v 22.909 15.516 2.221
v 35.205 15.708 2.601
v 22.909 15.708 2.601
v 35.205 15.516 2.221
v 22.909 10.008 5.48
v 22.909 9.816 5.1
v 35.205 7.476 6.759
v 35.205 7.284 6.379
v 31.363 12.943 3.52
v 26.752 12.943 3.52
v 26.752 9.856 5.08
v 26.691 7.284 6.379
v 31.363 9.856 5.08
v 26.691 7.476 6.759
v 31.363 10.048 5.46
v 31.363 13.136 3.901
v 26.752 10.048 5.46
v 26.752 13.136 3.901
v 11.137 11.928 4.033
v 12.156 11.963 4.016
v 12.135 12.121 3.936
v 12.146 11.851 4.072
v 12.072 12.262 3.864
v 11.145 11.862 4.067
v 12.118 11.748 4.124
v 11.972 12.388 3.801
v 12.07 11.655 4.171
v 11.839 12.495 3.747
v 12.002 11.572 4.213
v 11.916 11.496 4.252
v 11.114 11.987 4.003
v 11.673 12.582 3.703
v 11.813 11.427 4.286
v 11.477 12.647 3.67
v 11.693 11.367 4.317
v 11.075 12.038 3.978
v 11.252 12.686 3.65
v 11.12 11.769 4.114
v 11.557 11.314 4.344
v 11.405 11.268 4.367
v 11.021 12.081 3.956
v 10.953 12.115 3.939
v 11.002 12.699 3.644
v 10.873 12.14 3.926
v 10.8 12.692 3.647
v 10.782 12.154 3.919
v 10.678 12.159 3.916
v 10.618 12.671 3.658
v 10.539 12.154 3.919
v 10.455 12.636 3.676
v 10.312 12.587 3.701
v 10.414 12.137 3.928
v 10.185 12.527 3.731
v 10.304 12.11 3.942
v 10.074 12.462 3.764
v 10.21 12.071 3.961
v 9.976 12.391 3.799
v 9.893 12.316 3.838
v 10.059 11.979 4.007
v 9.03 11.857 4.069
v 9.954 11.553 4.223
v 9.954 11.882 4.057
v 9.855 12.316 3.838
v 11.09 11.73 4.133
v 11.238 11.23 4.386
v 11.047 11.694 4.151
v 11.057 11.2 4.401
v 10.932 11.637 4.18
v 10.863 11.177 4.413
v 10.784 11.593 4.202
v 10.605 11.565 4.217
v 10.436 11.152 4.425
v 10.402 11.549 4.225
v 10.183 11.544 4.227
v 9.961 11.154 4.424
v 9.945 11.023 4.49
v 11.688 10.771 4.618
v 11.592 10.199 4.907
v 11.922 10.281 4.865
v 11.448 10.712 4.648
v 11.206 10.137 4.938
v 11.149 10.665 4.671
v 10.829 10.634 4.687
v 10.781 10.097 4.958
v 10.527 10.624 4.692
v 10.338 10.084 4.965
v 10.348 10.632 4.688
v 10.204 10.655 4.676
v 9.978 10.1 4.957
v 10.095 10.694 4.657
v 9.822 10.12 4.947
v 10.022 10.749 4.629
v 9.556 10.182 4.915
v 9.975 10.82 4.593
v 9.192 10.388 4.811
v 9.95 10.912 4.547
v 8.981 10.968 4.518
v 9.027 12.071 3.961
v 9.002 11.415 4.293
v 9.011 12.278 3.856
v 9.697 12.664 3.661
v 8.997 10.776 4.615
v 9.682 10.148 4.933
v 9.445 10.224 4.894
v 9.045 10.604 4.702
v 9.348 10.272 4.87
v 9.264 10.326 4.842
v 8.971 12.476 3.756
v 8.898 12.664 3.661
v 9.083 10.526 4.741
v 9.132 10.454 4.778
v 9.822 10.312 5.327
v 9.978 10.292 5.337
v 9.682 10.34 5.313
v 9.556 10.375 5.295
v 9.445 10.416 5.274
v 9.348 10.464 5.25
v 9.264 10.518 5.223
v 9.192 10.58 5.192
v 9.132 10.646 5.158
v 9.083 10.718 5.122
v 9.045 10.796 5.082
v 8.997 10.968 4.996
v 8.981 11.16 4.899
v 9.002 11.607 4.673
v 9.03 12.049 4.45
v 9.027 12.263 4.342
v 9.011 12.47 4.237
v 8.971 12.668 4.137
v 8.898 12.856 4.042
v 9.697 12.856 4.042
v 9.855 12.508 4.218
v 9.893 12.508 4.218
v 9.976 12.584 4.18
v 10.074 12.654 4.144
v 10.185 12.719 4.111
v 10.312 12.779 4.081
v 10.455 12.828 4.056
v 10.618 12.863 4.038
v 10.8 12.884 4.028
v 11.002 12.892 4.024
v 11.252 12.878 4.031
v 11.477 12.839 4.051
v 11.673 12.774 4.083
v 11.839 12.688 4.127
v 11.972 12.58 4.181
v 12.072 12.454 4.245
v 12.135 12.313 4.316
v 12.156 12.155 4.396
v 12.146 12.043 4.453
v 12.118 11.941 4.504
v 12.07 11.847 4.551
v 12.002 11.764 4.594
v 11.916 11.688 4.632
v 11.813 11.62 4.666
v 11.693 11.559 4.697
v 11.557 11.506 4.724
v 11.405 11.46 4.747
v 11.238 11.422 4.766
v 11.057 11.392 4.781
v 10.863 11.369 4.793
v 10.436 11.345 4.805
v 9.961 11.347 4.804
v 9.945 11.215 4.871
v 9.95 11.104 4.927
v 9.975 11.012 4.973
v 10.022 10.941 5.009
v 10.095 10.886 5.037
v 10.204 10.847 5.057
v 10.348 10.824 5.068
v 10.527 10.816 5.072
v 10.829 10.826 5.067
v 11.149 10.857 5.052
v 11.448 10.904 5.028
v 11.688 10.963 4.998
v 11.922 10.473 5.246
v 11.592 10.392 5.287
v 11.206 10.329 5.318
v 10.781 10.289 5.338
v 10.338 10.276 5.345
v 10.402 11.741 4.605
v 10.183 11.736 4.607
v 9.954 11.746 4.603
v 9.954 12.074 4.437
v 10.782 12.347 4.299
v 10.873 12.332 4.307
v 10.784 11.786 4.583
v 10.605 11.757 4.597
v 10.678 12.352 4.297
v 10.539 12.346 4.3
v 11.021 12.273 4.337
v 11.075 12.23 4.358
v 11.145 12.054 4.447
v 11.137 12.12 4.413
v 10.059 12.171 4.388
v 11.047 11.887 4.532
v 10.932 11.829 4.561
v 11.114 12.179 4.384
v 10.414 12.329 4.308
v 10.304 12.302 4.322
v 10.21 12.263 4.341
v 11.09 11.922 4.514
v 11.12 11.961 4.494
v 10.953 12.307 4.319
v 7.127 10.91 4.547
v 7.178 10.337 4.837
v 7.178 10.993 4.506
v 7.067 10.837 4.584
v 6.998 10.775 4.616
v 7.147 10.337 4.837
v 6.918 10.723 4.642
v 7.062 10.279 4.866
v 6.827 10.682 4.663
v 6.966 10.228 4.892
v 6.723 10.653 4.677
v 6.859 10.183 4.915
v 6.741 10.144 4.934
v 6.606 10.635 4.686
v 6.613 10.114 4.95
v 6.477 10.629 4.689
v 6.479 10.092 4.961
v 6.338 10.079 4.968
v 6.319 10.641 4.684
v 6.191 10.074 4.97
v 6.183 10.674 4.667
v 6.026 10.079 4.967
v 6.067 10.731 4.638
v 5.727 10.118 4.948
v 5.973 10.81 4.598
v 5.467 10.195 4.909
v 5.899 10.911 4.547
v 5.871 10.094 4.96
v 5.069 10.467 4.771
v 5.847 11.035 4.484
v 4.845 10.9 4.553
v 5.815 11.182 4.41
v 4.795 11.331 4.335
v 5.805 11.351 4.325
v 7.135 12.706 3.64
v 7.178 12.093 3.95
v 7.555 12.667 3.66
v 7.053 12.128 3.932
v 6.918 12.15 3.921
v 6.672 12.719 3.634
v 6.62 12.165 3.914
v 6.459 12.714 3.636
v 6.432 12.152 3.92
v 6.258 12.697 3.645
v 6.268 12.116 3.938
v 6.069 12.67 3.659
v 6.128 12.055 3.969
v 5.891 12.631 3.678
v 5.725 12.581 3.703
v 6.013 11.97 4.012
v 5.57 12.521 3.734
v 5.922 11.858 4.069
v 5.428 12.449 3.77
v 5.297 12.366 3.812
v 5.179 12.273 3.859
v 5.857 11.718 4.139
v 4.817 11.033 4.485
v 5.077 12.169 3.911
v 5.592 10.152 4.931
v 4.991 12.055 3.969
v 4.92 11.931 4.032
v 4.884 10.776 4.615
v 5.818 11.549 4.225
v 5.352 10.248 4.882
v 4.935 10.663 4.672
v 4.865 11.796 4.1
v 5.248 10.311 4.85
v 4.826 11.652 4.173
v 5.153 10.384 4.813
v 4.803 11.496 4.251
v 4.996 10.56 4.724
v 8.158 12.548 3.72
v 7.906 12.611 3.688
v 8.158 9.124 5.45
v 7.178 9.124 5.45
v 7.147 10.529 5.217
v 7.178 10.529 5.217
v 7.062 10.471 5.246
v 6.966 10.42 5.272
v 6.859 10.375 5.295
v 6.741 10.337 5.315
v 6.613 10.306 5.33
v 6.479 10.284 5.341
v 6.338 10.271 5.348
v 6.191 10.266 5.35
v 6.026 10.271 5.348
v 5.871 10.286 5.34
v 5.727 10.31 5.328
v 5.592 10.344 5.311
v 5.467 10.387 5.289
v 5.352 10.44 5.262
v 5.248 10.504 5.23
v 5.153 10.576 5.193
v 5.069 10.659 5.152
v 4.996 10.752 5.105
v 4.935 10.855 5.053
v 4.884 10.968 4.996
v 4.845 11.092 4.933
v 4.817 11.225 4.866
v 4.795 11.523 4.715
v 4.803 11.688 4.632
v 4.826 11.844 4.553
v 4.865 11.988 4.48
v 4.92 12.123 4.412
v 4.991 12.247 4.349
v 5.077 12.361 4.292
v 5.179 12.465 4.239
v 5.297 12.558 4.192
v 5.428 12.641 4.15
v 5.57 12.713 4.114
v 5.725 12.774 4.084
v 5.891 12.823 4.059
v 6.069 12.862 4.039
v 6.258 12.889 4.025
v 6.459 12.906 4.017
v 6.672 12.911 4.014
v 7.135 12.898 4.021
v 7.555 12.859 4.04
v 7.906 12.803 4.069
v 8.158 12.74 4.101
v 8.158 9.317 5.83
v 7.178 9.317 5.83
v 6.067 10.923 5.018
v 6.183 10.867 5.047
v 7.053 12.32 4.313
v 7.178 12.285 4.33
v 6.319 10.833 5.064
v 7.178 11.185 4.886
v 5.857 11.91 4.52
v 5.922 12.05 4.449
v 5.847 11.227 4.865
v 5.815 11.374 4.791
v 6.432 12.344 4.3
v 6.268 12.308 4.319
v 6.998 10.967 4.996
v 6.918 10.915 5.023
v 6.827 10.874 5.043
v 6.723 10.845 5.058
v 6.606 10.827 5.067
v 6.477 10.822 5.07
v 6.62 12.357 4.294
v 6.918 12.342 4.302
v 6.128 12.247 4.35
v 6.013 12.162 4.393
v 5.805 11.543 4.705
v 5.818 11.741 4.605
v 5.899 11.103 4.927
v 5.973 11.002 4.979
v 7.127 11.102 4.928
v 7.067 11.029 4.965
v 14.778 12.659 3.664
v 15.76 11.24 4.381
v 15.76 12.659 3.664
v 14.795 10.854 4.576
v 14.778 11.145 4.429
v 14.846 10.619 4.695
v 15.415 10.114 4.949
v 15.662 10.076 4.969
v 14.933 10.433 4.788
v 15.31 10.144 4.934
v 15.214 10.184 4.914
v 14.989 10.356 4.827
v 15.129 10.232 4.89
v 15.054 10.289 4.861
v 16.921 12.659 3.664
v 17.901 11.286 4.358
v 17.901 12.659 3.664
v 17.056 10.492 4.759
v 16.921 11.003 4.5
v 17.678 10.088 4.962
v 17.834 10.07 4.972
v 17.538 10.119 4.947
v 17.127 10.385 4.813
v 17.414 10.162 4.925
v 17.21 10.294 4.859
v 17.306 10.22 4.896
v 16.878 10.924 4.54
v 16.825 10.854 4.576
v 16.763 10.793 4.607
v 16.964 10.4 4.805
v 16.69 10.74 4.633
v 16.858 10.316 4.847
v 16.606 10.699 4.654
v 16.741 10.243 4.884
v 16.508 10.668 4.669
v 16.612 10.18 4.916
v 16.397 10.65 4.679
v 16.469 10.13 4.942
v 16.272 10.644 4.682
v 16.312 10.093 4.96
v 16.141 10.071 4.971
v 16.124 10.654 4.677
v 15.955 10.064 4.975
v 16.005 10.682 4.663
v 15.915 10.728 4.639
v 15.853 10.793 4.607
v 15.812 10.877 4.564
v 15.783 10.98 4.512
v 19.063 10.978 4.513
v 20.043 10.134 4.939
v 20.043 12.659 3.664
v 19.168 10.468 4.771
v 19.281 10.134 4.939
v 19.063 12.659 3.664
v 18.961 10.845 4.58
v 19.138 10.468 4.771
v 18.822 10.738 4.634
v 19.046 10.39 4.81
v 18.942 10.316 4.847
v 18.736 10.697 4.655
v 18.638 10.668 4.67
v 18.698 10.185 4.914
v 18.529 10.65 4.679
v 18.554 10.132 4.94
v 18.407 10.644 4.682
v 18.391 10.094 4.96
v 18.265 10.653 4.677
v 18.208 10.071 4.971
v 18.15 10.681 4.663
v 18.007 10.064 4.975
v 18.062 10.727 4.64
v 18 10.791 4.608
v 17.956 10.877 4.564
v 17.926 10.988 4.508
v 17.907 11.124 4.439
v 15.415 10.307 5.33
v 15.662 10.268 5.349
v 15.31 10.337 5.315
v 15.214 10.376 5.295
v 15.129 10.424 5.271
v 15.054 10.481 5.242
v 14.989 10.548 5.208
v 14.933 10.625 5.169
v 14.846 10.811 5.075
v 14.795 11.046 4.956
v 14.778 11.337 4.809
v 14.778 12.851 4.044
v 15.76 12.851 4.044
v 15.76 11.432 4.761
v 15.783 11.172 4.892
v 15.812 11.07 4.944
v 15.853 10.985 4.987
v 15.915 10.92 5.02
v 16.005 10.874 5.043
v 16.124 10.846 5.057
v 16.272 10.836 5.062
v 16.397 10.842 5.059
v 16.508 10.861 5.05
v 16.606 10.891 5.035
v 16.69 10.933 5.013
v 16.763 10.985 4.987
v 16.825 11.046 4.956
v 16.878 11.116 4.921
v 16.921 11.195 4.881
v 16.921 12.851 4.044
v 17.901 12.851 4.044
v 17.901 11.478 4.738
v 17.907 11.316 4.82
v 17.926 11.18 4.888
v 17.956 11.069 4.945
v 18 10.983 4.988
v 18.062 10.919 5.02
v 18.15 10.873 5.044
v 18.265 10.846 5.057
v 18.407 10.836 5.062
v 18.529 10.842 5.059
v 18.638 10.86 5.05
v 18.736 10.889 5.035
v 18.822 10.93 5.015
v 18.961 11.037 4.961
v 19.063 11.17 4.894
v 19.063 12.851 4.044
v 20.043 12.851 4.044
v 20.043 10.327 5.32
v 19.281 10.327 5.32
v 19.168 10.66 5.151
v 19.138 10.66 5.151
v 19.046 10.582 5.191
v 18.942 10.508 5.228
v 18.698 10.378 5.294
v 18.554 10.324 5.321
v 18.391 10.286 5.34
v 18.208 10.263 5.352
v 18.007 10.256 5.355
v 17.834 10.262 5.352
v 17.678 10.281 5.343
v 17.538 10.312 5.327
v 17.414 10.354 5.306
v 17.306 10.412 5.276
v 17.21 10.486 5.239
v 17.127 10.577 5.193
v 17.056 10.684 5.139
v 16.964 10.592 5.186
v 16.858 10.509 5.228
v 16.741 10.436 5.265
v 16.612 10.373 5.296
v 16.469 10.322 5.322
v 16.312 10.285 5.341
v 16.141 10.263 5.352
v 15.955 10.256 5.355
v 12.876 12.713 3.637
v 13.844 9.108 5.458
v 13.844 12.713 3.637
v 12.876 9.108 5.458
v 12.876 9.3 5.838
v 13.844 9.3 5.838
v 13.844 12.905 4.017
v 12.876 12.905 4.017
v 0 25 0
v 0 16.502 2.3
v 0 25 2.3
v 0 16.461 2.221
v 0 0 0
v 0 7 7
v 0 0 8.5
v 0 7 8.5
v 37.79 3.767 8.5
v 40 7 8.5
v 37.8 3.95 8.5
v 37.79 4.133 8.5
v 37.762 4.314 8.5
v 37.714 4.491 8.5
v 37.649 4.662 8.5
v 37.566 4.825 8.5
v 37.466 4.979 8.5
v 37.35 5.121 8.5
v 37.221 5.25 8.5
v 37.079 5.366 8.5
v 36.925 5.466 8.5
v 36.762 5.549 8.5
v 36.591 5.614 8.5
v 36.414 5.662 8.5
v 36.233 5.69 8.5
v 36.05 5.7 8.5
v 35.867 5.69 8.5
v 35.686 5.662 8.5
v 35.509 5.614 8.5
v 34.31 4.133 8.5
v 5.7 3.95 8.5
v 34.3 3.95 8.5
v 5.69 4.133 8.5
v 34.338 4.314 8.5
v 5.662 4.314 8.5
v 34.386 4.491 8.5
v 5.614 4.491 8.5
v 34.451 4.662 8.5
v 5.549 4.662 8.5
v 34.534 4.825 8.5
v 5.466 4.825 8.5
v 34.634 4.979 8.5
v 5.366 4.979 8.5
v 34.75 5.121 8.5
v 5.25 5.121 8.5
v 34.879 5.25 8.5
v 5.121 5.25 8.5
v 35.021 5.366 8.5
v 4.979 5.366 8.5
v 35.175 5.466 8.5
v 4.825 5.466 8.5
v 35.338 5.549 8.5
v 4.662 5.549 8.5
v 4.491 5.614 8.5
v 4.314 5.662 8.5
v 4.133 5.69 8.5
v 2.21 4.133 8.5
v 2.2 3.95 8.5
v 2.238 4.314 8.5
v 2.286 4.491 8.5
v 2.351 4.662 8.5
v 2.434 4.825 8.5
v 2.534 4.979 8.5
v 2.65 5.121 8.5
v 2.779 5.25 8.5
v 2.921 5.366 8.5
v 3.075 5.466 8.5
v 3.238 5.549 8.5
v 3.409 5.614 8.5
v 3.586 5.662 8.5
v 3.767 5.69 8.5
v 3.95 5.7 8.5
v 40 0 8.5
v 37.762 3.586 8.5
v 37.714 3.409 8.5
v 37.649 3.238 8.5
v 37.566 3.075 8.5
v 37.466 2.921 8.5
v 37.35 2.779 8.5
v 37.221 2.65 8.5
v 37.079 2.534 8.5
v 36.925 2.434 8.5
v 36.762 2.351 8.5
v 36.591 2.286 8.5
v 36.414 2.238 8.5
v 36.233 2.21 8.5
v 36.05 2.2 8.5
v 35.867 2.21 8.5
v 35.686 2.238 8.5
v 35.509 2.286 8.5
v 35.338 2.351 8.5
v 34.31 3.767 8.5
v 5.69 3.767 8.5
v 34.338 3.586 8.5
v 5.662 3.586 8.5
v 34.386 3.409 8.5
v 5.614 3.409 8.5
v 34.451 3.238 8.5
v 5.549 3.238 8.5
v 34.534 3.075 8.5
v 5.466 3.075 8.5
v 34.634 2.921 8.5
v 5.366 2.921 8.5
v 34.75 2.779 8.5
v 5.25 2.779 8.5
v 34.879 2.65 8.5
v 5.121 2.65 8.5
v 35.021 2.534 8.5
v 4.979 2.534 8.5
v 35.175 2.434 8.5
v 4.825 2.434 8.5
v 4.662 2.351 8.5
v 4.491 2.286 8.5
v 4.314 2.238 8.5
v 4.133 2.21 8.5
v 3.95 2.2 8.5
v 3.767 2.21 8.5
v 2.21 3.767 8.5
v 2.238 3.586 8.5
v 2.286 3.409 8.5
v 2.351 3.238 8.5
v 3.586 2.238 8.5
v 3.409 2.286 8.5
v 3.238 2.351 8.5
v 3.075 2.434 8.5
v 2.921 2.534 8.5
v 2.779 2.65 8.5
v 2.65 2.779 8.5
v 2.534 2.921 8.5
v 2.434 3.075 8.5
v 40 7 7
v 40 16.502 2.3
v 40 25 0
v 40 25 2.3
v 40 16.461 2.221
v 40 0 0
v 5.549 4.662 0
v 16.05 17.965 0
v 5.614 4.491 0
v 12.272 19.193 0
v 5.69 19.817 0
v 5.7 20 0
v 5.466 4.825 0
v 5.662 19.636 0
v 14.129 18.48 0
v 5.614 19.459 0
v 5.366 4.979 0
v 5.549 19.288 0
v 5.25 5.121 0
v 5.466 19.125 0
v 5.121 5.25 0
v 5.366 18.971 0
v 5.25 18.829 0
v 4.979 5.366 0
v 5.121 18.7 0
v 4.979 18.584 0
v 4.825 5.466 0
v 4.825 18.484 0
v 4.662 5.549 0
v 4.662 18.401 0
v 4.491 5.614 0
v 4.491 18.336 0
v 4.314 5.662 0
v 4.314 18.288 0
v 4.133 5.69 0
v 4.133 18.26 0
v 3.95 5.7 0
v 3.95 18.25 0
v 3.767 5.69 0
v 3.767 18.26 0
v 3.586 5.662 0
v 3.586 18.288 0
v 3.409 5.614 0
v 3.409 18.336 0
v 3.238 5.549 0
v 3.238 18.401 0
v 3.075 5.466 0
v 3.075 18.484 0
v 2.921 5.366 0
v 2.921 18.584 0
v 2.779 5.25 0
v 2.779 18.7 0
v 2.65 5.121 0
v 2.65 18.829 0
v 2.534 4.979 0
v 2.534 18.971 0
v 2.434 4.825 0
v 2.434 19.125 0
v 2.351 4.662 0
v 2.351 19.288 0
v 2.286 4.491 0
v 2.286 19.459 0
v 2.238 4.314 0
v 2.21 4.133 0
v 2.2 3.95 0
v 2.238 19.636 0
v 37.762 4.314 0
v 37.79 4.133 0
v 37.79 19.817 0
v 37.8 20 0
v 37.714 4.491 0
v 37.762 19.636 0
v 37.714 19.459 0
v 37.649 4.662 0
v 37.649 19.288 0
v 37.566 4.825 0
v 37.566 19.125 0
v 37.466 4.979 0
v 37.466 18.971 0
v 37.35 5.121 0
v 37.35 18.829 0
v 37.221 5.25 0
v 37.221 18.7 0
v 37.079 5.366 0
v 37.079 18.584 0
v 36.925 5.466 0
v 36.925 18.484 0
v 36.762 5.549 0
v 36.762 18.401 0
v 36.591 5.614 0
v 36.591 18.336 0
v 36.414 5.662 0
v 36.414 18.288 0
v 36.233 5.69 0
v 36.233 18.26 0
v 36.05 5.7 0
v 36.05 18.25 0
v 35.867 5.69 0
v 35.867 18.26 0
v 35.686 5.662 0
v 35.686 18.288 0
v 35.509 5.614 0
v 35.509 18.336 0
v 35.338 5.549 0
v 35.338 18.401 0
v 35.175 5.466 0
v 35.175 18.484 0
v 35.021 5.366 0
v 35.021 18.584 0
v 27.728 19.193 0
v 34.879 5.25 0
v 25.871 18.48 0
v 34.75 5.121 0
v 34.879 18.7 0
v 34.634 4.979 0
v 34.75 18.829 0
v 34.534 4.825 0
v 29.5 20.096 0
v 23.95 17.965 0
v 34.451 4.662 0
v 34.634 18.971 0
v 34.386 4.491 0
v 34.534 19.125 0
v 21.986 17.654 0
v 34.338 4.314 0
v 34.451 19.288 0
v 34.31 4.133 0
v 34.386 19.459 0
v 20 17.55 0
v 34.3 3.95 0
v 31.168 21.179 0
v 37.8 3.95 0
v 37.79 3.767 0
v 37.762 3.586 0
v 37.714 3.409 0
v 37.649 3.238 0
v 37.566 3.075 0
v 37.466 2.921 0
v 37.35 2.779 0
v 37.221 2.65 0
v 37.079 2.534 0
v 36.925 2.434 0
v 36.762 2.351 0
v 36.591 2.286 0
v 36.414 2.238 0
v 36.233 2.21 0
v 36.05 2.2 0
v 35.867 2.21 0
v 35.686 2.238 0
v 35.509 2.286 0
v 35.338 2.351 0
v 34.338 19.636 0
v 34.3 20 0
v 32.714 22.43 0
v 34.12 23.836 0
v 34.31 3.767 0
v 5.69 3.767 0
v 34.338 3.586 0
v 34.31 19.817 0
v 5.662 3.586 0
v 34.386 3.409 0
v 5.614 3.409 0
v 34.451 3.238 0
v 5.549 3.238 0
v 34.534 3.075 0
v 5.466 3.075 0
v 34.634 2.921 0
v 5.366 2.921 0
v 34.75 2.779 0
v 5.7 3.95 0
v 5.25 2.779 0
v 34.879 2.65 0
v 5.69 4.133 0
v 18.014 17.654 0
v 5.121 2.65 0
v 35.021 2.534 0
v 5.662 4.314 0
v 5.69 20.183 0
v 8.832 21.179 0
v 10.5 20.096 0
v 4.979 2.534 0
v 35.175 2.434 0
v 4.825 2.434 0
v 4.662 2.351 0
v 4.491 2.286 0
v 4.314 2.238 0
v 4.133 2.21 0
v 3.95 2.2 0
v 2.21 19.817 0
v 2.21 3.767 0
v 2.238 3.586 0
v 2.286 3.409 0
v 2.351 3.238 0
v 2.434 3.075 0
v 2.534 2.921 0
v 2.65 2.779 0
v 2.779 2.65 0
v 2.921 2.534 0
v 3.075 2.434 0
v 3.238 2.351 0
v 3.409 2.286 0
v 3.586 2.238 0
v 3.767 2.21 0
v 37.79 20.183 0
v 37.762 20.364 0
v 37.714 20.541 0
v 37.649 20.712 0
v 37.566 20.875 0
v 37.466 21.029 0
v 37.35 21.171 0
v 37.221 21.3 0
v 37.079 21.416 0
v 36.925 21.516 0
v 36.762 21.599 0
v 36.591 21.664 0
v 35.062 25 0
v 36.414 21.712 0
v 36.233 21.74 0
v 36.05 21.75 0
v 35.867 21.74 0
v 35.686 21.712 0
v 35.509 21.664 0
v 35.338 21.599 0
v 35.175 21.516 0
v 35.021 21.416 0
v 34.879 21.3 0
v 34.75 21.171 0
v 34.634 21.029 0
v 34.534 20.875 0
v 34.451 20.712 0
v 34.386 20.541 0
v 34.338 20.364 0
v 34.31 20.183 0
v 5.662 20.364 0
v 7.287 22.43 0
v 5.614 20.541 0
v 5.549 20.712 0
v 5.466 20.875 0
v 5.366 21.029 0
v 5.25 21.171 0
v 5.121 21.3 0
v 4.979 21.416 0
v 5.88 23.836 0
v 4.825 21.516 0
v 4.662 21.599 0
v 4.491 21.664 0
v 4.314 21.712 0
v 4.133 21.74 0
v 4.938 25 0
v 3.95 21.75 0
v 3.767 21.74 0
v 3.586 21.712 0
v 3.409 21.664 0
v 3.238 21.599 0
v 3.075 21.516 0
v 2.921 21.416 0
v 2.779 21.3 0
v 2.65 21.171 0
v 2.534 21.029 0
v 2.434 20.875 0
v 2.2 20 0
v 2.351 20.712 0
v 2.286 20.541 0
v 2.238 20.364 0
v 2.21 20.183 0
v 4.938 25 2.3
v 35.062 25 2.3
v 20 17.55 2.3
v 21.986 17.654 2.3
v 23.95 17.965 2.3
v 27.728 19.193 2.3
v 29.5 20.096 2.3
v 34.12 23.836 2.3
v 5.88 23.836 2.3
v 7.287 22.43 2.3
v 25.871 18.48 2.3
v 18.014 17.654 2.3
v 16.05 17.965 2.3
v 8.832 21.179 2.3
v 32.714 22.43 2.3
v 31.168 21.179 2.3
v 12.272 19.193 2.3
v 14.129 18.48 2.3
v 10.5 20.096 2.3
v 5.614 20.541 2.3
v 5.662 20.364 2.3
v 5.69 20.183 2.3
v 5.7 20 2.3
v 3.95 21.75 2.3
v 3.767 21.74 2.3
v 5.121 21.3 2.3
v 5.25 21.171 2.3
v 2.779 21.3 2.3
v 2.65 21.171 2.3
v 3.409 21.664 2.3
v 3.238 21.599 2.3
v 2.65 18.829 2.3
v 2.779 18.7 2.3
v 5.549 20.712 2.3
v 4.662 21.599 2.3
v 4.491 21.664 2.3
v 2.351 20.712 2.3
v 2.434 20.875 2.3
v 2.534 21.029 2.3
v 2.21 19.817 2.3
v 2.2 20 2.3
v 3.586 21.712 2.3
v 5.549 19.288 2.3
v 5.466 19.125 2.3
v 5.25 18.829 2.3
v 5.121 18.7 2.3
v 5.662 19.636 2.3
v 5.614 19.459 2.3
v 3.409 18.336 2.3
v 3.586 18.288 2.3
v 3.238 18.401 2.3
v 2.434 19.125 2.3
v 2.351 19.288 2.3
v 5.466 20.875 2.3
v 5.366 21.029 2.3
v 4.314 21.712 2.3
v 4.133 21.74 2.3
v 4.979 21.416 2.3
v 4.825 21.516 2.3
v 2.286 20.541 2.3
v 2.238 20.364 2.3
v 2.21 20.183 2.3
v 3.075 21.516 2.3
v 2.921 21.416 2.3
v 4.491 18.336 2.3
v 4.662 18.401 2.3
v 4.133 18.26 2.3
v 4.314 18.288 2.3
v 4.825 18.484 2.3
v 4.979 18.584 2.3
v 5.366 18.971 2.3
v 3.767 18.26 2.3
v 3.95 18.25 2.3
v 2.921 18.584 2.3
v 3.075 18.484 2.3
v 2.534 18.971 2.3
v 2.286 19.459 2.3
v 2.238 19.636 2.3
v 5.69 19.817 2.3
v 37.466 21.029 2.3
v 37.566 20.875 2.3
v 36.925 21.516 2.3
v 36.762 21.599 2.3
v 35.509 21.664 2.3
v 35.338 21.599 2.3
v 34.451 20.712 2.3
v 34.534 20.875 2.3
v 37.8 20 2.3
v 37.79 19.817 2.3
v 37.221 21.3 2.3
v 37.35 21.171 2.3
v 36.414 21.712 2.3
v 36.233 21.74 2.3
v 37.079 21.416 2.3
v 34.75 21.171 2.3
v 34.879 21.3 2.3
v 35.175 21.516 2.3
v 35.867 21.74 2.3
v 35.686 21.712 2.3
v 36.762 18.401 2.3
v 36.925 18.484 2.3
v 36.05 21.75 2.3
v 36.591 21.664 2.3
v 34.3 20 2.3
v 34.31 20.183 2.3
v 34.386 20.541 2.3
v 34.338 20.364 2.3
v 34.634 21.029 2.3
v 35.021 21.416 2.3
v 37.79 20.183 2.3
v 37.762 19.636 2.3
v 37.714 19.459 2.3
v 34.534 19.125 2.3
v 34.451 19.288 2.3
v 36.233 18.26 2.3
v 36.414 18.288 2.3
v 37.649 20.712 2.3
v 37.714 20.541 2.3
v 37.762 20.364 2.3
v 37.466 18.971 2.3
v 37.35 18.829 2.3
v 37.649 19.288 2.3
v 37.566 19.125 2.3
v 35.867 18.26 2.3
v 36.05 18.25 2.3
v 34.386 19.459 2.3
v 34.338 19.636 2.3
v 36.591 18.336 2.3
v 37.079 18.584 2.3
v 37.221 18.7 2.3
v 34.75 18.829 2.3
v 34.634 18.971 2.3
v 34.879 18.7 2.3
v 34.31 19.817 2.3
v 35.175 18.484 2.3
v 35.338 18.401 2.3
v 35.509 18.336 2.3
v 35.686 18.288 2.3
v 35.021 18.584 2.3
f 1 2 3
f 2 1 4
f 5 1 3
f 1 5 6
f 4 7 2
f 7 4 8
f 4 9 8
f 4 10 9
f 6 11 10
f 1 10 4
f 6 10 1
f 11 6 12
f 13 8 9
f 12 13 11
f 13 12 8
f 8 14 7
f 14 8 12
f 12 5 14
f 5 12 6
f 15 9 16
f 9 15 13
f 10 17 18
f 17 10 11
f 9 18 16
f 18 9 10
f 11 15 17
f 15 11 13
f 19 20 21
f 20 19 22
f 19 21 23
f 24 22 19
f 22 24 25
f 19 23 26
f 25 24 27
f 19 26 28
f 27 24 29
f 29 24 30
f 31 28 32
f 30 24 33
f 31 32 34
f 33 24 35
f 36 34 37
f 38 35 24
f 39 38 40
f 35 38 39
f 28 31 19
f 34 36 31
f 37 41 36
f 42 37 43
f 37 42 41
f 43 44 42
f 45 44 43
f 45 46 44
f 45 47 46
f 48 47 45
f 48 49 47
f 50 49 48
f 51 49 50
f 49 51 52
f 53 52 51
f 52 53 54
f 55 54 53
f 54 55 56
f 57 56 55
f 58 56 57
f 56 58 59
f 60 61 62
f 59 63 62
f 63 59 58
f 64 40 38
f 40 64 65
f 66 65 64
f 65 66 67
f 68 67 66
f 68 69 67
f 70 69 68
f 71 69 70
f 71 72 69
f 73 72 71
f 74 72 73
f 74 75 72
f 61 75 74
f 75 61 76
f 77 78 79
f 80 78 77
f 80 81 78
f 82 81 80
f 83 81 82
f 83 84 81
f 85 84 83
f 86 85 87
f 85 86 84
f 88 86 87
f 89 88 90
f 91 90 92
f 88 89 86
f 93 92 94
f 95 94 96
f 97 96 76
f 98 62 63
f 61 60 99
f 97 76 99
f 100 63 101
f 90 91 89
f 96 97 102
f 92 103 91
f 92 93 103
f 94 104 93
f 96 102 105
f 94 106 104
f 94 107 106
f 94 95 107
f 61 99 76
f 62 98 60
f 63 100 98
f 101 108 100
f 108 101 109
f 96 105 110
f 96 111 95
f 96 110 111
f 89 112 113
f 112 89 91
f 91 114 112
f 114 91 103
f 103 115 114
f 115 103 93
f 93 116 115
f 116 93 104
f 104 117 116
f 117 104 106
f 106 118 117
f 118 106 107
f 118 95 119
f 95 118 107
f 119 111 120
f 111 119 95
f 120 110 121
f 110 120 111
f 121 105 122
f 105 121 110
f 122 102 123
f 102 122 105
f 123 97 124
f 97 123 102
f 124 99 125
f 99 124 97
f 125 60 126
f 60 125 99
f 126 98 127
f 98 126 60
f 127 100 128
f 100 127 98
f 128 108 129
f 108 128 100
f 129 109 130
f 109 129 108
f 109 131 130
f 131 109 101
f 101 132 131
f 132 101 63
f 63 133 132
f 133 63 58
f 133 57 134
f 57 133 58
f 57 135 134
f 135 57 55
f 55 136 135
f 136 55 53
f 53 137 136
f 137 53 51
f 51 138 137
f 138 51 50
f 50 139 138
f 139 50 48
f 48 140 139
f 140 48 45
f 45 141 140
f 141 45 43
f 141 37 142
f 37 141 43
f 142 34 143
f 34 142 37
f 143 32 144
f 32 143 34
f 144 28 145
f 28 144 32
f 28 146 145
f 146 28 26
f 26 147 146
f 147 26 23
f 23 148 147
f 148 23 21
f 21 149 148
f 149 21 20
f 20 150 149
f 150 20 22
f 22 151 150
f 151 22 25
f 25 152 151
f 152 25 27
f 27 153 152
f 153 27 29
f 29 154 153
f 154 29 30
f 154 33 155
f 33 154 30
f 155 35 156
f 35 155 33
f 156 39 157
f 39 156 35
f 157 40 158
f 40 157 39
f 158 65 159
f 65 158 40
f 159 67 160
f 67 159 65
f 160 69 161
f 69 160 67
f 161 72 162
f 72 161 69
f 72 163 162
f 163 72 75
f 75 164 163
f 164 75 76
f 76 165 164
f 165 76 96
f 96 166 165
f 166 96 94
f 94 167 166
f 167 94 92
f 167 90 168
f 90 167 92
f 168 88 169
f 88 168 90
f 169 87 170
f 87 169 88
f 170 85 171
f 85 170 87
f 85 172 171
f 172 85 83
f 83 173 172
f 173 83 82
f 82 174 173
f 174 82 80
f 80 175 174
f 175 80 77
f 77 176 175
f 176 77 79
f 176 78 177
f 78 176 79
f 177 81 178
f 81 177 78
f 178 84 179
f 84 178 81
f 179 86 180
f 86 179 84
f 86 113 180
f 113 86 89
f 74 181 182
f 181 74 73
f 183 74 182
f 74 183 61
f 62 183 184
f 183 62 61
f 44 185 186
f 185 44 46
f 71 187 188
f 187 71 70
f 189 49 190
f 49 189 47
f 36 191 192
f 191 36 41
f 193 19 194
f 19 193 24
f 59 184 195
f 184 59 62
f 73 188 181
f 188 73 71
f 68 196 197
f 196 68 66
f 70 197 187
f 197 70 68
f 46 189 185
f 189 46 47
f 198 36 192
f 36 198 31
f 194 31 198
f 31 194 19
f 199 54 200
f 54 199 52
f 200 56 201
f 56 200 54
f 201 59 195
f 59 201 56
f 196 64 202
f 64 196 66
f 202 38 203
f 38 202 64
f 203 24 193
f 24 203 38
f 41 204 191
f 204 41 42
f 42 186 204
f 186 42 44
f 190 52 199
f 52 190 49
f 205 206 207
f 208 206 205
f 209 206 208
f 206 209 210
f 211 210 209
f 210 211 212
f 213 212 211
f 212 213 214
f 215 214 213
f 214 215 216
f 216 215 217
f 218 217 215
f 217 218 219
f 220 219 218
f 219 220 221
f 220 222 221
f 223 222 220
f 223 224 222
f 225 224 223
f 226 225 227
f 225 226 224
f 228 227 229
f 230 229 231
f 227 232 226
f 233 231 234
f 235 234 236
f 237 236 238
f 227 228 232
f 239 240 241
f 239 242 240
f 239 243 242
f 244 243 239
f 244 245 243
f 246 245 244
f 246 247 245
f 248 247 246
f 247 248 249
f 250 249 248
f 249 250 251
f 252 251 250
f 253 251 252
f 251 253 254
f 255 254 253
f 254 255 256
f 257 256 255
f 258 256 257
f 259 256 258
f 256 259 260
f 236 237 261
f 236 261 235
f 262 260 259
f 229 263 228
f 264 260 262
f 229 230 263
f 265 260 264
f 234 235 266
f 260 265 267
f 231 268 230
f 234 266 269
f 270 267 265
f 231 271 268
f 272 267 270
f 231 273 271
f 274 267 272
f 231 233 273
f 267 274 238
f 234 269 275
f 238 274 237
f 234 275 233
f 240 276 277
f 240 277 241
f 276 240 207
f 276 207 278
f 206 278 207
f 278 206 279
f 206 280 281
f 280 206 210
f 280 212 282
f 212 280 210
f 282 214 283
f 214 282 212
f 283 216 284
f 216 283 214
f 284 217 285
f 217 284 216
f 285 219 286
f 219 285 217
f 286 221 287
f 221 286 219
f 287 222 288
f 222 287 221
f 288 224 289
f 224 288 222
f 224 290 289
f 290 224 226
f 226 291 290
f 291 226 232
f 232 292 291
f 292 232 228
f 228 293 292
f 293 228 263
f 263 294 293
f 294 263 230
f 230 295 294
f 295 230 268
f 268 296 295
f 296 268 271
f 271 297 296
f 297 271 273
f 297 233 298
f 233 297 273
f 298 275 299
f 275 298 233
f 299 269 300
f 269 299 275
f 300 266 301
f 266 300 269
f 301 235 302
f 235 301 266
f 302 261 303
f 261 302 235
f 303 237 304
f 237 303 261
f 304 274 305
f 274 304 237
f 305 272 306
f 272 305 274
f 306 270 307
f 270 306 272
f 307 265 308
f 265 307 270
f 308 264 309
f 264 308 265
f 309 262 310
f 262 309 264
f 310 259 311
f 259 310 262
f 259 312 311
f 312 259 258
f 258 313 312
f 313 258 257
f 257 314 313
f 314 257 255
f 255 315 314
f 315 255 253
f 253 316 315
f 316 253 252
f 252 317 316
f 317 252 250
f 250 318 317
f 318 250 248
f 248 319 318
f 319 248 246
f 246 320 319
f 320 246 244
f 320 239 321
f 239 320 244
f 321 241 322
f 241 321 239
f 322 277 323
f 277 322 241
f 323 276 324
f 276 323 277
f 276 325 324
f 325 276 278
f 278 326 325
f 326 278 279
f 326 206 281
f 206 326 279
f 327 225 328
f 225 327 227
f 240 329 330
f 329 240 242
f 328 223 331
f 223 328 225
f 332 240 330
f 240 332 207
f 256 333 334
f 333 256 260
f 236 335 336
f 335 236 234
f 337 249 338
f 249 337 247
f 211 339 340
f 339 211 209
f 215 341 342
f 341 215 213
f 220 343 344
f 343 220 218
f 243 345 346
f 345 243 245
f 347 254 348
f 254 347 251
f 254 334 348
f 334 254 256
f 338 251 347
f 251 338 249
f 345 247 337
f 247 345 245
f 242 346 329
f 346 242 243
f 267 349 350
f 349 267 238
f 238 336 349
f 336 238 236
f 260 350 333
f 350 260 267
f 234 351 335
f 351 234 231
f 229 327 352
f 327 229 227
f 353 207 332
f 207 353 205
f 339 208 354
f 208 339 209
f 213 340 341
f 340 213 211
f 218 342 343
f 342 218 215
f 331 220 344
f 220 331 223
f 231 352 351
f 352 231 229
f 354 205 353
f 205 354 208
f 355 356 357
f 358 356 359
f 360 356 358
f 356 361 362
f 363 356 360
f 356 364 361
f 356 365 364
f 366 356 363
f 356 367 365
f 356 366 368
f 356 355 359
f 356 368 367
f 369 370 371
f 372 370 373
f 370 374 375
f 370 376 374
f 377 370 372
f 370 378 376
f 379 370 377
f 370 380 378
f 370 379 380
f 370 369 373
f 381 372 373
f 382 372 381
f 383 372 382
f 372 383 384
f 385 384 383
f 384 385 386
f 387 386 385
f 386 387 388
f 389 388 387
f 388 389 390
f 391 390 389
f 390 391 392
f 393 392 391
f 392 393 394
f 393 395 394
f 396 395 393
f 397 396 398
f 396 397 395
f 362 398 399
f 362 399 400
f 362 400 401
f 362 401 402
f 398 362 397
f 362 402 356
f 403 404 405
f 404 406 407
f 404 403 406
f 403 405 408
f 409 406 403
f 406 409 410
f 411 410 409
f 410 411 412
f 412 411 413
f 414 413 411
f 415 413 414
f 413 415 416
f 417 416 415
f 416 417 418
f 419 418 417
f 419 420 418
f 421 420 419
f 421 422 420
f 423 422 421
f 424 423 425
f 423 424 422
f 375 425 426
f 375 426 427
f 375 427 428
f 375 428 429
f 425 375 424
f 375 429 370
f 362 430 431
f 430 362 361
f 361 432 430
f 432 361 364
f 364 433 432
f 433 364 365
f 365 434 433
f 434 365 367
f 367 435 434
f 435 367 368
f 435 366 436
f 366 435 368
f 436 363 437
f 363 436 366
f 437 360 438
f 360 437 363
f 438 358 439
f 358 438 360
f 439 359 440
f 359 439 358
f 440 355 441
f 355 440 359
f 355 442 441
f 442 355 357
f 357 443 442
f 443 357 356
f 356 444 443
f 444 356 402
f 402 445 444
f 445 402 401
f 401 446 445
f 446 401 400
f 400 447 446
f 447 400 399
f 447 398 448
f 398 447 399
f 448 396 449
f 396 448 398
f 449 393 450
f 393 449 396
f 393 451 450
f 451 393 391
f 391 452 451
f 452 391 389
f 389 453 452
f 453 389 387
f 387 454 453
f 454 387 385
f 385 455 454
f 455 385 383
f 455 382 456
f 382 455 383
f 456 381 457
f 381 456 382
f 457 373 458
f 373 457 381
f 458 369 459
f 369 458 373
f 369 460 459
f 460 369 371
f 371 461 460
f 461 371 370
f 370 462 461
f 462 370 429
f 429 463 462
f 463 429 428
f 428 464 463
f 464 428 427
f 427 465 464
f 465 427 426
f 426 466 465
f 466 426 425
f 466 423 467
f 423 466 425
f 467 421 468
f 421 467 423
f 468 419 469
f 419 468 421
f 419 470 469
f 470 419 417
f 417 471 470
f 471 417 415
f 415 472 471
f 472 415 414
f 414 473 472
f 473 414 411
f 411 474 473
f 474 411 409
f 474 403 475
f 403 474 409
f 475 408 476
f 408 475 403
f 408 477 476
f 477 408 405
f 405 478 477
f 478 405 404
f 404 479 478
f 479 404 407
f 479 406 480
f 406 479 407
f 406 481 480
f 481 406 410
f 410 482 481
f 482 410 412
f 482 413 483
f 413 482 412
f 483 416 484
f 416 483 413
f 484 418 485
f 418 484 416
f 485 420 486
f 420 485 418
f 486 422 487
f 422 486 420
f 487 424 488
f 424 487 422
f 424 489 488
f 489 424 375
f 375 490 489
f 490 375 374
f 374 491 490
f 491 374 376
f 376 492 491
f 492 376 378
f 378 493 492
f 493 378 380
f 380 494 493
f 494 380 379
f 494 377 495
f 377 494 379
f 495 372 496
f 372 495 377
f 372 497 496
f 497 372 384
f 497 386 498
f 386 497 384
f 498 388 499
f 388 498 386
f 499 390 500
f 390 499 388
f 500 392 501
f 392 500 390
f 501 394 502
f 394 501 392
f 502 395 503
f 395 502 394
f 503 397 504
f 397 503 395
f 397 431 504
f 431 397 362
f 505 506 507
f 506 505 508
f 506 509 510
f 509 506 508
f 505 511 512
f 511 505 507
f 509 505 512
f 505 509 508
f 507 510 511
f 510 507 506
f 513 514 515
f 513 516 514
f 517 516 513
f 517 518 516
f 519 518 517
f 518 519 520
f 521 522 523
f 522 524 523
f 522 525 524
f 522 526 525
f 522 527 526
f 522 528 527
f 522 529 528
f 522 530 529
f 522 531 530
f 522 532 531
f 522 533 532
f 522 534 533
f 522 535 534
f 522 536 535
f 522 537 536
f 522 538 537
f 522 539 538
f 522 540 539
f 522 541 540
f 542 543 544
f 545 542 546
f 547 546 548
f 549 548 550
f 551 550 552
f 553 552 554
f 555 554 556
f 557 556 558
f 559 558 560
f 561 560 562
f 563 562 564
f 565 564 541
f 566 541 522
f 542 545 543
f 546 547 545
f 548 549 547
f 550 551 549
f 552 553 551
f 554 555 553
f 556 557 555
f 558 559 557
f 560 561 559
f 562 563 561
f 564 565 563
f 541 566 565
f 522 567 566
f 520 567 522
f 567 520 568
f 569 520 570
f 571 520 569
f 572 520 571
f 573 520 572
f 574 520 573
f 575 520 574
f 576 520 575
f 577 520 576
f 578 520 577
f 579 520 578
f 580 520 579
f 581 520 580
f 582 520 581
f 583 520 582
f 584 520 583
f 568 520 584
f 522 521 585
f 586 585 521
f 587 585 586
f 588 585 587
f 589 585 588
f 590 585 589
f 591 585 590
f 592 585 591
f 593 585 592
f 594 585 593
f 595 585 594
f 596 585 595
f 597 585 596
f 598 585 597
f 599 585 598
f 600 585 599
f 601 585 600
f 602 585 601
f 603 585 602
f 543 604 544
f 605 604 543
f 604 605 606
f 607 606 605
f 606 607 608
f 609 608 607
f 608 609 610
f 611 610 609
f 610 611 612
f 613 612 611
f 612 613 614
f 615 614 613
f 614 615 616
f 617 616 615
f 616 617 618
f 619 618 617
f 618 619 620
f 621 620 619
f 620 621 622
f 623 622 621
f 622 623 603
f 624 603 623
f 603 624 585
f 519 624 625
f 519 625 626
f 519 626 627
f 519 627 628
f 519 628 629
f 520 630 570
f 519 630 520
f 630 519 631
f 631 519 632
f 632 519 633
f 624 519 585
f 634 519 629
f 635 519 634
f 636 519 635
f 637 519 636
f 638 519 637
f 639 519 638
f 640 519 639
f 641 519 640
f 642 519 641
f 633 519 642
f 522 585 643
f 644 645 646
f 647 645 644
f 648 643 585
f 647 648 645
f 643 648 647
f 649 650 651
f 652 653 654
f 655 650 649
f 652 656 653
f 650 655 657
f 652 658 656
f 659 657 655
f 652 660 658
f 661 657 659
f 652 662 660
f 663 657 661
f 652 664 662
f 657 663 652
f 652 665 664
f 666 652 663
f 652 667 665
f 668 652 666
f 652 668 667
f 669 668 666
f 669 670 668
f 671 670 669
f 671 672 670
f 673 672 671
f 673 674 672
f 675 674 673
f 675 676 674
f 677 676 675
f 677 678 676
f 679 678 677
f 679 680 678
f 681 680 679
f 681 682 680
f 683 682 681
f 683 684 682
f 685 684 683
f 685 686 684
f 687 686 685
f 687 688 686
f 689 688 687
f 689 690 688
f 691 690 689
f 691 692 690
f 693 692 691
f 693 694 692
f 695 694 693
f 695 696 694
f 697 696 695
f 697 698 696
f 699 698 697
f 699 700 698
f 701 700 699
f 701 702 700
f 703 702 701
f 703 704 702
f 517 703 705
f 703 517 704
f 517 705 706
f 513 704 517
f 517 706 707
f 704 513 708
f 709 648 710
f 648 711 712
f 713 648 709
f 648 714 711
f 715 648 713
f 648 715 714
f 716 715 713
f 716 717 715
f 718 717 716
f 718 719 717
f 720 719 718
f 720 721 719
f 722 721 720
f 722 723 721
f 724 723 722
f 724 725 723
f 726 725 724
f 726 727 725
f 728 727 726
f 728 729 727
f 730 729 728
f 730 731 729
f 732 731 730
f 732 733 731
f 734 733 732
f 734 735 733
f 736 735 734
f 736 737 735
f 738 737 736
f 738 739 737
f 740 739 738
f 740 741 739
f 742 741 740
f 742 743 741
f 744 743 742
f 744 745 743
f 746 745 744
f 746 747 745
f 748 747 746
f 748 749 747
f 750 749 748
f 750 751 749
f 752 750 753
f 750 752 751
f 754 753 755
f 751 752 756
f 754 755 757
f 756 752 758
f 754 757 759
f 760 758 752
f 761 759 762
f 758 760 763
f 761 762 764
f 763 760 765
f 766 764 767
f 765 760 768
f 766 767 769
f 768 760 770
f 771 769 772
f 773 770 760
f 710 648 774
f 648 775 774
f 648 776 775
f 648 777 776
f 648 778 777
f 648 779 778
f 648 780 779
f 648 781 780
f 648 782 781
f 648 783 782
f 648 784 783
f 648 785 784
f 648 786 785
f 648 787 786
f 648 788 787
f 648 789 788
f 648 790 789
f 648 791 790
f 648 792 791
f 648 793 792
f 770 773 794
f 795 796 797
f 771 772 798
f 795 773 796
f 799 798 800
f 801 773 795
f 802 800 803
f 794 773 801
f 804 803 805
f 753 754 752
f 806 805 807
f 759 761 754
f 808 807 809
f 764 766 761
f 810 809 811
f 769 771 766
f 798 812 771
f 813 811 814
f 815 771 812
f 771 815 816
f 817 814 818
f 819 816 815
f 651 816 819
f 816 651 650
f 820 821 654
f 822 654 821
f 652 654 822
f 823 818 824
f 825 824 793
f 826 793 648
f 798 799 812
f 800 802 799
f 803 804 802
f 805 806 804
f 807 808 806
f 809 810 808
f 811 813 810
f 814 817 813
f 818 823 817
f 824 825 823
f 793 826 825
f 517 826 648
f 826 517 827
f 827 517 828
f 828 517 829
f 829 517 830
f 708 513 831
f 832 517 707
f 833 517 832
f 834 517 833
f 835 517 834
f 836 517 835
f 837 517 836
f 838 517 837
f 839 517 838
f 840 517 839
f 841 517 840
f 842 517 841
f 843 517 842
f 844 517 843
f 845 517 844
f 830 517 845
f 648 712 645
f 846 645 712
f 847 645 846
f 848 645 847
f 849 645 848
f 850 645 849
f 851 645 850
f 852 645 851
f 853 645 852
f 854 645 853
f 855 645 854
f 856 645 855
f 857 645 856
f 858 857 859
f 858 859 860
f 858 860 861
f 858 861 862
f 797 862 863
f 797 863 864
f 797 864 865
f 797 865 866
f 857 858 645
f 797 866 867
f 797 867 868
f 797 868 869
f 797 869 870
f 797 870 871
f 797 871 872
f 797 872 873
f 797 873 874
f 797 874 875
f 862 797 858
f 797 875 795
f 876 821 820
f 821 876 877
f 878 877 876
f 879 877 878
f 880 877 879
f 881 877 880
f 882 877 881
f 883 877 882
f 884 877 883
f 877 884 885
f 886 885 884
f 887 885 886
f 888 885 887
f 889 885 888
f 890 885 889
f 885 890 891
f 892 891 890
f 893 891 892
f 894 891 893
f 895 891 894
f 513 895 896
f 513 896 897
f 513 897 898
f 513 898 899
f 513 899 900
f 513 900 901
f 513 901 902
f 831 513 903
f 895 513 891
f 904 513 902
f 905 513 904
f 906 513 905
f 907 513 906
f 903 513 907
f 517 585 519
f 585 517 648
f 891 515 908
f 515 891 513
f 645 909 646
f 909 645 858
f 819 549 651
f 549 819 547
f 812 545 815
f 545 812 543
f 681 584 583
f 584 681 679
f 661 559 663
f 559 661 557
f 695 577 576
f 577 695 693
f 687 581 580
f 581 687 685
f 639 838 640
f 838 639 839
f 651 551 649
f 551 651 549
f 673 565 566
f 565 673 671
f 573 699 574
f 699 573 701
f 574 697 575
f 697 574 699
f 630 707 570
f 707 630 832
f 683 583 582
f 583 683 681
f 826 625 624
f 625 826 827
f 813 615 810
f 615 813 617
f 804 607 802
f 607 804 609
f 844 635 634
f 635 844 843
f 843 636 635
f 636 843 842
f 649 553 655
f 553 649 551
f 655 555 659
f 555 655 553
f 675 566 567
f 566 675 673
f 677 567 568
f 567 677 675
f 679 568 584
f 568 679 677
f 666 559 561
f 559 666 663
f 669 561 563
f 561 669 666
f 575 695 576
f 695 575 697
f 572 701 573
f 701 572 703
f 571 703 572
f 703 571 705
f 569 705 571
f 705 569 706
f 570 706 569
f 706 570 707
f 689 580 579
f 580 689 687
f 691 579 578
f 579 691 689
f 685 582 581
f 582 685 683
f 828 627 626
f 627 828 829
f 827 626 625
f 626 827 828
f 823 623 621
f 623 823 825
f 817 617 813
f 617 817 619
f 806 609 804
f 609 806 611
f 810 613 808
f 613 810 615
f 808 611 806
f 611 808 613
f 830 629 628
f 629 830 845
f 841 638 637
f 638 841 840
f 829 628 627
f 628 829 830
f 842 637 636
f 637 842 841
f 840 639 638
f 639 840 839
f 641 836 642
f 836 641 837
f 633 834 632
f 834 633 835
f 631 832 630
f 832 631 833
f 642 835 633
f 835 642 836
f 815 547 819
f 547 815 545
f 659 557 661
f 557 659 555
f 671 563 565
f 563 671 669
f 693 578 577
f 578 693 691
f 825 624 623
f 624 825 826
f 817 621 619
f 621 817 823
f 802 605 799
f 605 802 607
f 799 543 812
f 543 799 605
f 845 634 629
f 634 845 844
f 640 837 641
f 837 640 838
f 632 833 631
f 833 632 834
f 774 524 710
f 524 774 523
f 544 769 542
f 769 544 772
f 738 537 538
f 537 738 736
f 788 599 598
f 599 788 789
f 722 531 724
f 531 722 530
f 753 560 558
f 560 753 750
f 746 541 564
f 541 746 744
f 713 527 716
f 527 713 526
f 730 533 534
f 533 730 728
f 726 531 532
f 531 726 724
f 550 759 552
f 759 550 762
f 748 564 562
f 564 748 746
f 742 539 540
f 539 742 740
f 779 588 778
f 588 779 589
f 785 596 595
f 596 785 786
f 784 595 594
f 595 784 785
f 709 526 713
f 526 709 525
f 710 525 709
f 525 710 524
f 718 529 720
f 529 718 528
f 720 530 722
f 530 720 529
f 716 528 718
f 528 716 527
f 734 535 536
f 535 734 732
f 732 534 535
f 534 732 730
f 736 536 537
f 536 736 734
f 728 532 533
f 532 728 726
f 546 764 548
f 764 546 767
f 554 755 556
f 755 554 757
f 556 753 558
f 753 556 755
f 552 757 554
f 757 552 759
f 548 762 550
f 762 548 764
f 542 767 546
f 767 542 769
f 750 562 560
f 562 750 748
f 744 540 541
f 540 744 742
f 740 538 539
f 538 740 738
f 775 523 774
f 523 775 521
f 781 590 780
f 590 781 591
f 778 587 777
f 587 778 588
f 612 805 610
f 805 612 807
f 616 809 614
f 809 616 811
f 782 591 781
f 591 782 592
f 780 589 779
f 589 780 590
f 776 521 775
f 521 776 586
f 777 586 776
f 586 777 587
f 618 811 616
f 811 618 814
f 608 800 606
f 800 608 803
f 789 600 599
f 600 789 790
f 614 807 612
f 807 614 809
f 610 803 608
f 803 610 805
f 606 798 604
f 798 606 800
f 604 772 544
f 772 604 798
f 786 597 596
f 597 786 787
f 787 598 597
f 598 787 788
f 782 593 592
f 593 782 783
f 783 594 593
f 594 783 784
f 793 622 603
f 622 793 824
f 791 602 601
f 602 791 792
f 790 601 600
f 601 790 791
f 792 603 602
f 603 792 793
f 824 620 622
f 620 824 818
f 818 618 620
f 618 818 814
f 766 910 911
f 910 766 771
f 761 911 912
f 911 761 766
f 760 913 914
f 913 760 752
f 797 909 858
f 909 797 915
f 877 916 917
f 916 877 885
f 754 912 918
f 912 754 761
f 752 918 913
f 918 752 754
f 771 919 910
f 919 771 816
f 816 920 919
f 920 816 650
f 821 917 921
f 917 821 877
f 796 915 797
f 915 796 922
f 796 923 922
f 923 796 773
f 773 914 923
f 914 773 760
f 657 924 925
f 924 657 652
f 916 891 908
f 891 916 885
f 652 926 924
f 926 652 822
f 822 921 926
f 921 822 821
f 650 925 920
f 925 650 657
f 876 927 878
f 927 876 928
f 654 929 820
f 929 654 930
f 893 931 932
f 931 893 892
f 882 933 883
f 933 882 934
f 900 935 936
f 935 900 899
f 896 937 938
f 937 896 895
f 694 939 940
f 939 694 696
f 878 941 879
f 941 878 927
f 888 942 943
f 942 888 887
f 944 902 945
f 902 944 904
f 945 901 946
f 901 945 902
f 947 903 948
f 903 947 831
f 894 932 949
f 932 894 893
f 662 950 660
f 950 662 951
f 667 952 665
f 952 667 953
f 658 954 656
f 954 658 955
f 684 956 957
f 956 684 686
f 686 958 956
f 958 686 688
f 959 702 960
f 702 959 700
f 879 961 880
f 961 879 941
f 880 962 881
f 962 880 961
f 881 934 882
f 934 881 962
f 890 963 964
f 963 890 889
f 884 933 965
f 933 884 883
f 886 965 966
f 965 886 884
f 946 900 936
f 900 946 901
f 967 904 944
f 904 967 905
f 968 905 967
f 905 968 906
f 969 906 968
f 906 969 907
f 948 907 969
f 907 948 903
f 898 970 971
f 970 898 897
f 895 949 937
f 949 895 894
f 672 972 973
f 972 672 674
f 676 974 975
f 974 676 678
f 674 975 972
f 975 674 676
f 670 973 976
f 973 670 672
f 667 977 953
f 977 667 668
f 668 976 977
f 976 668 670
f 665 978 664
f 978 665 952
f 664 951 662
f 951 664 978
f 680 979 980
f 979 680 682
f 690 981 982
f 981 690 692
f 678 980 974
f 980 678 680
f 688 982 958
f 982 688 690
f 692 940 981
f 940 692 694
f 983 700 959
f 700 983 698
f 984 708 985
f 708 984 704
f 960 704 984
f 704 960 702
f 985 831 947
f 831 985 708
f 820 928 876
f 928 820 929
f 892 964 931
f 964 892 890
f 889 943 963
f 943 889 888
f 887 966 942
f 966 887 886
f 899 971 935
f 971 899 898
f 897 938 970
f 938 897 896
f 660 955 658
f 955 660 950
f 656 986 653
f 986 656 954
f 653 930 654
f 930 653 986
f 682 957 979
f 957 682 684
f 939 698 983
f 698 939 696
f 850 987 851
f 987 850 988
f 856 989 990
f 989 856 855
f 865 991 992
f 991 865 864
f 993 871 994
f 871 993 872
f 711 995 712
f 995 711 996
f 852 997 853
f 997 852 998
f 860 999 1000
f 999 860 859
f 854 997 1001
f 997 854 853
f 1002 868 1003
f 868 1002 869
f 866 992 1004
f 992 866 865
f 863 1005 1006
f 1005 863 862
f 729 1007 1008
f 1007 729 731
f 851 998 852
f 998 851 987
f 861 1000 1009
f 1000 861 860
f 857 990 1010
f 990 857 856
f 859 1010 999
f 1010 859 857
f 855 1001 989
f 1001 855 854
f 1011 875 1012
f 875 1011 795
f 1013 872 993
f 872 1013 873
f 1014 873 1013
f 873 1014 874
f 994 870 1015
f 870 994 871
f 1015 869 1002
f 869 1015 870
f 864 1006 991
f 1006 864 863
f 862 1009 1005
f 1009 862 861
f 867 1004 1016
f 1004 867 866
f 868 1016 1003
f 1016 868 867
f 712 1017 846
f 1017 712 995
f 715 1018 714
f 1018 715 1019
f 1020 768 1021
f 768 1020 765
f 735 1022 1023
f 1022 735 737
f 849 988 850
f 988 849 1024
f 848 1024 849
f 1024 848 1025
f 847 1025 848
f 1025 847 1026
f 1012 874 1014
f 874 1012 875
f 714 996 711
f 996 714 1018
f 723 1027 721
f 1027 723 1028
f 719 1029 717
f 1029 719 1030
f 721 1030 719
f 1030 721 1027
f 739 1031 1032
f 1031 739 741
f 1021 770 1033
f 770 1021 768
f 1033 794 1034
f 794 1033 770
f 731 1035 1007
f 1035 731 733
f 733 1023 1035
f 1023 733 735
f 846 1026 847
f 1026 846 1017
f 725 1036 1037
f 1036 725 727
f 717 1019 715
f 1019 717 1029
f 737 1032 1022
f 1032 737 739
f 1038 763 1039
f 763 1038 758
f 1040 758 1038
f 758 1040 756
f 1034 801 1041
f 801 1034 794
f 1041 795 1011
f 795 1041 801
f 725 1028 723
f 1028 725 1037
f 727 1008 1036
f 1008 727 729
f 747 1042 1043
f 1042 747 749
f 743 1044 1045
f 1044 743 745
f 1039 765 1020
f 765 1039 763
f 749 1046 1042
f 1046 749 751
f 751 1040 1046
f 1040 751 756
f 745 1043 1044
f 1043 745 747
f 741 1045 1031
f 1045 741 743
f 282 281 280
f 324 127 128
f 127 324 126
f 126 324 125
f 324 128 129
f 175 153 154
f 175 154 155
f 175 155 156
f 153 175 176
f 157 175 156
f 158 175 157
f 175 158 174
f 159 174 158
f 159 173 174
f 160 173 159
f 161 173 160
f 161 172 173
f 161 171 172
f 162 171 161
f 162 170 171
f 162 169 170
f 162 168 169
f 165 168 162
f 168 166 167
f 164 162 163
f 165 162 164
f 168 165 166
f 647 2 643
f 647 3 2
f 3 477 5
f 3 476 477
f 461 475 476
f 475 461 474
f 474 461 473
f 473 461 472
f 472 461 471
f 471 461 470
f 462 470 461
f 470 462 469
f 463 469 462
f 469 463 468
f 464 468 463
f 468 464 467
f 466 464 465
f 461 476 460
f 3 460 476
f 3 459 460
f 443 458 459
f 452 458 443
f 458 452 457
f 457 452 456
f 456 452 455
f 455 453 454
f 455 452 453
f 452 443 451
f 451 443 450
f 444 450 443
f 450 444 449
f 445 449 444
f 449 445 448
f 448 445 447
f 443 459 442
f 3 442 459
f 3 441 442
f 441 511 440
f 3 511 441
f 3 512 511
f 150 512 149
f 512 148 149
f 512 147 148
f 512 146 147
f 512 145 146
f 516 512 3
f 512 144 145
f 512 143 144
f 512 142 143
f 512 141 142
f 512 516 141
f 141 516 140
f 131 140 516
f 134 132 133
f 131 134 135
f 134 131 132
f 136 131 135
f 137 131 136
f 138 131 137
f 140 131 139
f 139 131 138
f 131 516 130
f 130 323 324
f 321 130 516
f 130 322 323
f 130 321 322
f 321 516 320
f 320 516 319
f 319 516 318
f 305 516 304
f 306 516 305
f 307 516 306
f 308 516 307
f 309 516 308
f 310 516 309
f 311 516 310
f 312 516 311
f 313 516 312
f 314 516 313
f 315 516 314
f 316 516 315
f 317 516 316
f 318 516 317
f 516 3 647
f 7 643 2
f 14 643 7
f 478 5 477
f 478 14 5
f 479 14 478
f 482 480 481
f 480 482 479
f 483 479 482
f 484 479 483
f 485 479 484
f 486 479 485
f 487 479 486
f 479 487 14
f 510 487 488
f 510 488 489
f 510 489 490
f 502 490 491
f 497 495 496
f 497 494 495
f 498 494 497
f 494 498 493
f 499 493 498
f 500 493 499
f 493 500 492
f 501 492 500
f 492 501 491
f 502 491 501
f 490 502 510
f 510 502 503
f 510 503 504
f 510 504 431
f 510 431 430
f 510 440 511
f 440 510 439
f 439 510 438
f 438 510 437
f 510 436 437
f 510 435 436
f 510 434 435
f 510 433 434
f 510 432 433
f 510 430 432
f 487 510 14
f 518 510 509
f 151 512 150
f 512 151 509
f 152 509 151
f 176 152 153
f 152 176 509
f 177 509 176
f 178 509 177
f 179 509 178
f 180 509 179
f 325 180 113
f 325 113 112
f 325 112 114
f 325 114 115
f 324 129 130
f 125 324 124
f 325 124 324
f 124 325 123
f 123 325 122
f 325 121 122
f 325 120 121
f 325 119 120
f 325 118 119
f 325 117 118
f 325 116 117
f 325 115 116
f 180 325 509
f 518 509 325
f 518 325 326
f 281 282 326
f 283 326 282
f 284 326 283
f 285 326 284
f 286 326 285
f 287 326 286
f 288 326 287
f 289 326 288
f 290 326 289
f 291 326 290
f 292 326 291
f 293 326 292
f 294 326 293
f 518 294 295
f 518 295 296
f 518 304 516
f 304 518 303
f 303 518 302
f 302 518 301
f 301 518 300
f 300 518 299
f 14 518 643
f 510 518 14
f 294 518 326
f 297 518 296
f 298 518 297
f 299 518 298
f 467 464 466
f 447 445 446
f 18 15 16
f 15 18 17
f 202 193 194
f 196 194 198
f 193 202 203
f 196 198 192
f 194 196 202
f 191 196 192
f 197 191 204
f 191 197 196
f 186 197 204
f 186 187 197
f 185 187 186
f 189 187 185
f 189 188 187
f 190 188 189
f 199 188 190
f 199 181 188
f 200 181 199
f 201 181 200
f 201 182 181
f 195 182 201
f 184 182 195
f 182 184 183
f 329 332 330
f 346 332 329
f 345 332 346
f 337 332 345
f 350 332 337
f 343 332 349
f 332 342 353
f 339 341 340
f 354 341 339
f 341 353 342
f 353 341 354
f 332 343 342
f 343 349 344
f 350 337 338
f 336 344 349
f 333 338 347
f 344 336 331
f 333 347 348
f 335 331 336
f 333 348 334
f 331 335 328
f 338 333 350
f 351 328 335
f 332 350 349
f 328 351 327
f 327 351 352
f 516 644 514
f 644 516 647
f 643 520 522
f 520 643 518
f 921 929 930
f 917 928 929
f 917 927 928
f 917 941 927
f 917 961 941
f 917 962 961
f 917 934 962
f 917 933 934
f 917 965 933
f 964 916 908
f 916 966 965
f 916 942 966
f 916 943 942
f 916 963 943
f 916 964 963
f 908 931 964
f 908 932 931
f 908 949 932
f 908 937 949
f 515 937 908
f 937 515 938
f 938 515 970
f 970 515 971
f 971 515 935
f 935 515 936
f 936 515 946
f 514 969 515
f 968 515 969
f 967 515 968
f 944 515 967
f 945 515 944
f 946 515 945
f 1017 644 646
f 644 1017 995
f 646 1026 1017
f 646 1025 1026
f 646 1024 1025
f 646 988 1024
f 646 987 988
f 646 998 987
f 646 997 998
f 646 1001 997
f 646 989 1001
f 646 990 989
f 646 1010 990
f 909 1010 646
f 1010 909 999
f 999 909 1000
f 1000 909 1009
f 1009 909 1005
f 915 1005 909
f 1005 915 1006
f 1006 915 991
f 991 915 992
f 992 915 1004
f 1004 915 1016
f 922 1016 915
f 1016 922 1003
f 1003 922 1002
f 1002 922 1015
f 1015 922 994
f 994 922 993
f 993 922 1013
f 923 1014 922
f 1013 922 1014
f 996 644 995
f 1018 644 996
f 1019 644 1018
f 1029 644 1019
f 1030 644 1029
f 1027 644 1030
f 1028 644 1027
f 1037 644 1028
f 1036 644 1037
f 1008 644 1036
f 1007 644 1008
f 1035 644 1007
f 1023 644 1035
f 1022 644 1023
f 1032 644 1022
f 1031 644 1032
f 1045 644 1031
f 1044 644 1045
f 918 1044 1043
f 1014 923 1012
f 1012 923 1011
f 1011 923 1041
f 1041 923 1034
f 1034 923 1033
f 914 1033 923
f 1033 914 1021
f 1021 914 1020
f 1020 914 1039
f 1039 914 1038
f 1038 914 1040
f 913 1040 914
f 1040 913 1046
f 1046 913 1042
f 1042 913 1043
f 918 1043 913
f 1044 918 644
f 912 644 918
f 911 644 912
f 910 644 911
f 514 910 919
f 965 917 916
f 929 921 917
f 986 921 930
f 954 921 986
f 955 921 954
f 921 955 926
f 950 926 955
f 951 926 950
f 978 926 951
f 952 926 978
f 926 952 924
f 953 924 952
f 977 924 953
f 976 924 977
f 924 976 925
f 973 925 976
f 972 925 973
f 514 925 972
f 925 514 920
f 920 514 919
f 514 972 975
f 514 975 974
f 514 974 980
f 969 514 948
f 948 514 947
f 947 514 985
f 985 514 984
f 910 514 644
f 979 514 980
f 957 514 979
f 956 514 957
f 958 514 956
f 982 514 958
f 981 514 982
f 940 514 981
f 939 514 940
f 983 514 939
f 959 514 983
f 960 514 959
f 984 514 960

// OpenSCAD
use <../inc/MLAB_logo.scad>

$fn = 60;

M3_sroub_vetracek = 3.5;

module uchyt() {
    difference() {
        cube([40, 25, 8.5]);
        translate([1.7+4.5/2, 1.7+4.5/2, 0]) cylinder(r=M3_sroub_vetracek/2, h=10);
        translate([40-(1.7+4.5/2), 1.7+4.5/2, 0]) cylinder(r=M3_sroub_vetracek/2, h=10);
        translate([20, 20+16.55, 0]) cylinder(r=38/2, h=10);
        translate([1.7+4.5/2, 20, 0]) cylinder(r=M3_sroub_vetracek/2, h=10);
        translate([40-(1.7+4.5/2), 20, 0]) cylinder(r=M3_sroub_vetracek/2, h=10);
        translate([0, 7, 7]) rotate([-26.8, 0, 0]) cube([40, 10.6, 10]);
        translate([0, 7, 7]) rotate([]) cube([40, 20, 5]);
        translate([0, 16.5, 2.3]) cube([40, 10, 10]);
    }
}
difference() {
    uchyt();
    #translate([20, 11.4, 4.3]) rotate([26.8, 0, 180]) scale([0.16, 0.12, 0.16]) MLAB_logo_short();
}
